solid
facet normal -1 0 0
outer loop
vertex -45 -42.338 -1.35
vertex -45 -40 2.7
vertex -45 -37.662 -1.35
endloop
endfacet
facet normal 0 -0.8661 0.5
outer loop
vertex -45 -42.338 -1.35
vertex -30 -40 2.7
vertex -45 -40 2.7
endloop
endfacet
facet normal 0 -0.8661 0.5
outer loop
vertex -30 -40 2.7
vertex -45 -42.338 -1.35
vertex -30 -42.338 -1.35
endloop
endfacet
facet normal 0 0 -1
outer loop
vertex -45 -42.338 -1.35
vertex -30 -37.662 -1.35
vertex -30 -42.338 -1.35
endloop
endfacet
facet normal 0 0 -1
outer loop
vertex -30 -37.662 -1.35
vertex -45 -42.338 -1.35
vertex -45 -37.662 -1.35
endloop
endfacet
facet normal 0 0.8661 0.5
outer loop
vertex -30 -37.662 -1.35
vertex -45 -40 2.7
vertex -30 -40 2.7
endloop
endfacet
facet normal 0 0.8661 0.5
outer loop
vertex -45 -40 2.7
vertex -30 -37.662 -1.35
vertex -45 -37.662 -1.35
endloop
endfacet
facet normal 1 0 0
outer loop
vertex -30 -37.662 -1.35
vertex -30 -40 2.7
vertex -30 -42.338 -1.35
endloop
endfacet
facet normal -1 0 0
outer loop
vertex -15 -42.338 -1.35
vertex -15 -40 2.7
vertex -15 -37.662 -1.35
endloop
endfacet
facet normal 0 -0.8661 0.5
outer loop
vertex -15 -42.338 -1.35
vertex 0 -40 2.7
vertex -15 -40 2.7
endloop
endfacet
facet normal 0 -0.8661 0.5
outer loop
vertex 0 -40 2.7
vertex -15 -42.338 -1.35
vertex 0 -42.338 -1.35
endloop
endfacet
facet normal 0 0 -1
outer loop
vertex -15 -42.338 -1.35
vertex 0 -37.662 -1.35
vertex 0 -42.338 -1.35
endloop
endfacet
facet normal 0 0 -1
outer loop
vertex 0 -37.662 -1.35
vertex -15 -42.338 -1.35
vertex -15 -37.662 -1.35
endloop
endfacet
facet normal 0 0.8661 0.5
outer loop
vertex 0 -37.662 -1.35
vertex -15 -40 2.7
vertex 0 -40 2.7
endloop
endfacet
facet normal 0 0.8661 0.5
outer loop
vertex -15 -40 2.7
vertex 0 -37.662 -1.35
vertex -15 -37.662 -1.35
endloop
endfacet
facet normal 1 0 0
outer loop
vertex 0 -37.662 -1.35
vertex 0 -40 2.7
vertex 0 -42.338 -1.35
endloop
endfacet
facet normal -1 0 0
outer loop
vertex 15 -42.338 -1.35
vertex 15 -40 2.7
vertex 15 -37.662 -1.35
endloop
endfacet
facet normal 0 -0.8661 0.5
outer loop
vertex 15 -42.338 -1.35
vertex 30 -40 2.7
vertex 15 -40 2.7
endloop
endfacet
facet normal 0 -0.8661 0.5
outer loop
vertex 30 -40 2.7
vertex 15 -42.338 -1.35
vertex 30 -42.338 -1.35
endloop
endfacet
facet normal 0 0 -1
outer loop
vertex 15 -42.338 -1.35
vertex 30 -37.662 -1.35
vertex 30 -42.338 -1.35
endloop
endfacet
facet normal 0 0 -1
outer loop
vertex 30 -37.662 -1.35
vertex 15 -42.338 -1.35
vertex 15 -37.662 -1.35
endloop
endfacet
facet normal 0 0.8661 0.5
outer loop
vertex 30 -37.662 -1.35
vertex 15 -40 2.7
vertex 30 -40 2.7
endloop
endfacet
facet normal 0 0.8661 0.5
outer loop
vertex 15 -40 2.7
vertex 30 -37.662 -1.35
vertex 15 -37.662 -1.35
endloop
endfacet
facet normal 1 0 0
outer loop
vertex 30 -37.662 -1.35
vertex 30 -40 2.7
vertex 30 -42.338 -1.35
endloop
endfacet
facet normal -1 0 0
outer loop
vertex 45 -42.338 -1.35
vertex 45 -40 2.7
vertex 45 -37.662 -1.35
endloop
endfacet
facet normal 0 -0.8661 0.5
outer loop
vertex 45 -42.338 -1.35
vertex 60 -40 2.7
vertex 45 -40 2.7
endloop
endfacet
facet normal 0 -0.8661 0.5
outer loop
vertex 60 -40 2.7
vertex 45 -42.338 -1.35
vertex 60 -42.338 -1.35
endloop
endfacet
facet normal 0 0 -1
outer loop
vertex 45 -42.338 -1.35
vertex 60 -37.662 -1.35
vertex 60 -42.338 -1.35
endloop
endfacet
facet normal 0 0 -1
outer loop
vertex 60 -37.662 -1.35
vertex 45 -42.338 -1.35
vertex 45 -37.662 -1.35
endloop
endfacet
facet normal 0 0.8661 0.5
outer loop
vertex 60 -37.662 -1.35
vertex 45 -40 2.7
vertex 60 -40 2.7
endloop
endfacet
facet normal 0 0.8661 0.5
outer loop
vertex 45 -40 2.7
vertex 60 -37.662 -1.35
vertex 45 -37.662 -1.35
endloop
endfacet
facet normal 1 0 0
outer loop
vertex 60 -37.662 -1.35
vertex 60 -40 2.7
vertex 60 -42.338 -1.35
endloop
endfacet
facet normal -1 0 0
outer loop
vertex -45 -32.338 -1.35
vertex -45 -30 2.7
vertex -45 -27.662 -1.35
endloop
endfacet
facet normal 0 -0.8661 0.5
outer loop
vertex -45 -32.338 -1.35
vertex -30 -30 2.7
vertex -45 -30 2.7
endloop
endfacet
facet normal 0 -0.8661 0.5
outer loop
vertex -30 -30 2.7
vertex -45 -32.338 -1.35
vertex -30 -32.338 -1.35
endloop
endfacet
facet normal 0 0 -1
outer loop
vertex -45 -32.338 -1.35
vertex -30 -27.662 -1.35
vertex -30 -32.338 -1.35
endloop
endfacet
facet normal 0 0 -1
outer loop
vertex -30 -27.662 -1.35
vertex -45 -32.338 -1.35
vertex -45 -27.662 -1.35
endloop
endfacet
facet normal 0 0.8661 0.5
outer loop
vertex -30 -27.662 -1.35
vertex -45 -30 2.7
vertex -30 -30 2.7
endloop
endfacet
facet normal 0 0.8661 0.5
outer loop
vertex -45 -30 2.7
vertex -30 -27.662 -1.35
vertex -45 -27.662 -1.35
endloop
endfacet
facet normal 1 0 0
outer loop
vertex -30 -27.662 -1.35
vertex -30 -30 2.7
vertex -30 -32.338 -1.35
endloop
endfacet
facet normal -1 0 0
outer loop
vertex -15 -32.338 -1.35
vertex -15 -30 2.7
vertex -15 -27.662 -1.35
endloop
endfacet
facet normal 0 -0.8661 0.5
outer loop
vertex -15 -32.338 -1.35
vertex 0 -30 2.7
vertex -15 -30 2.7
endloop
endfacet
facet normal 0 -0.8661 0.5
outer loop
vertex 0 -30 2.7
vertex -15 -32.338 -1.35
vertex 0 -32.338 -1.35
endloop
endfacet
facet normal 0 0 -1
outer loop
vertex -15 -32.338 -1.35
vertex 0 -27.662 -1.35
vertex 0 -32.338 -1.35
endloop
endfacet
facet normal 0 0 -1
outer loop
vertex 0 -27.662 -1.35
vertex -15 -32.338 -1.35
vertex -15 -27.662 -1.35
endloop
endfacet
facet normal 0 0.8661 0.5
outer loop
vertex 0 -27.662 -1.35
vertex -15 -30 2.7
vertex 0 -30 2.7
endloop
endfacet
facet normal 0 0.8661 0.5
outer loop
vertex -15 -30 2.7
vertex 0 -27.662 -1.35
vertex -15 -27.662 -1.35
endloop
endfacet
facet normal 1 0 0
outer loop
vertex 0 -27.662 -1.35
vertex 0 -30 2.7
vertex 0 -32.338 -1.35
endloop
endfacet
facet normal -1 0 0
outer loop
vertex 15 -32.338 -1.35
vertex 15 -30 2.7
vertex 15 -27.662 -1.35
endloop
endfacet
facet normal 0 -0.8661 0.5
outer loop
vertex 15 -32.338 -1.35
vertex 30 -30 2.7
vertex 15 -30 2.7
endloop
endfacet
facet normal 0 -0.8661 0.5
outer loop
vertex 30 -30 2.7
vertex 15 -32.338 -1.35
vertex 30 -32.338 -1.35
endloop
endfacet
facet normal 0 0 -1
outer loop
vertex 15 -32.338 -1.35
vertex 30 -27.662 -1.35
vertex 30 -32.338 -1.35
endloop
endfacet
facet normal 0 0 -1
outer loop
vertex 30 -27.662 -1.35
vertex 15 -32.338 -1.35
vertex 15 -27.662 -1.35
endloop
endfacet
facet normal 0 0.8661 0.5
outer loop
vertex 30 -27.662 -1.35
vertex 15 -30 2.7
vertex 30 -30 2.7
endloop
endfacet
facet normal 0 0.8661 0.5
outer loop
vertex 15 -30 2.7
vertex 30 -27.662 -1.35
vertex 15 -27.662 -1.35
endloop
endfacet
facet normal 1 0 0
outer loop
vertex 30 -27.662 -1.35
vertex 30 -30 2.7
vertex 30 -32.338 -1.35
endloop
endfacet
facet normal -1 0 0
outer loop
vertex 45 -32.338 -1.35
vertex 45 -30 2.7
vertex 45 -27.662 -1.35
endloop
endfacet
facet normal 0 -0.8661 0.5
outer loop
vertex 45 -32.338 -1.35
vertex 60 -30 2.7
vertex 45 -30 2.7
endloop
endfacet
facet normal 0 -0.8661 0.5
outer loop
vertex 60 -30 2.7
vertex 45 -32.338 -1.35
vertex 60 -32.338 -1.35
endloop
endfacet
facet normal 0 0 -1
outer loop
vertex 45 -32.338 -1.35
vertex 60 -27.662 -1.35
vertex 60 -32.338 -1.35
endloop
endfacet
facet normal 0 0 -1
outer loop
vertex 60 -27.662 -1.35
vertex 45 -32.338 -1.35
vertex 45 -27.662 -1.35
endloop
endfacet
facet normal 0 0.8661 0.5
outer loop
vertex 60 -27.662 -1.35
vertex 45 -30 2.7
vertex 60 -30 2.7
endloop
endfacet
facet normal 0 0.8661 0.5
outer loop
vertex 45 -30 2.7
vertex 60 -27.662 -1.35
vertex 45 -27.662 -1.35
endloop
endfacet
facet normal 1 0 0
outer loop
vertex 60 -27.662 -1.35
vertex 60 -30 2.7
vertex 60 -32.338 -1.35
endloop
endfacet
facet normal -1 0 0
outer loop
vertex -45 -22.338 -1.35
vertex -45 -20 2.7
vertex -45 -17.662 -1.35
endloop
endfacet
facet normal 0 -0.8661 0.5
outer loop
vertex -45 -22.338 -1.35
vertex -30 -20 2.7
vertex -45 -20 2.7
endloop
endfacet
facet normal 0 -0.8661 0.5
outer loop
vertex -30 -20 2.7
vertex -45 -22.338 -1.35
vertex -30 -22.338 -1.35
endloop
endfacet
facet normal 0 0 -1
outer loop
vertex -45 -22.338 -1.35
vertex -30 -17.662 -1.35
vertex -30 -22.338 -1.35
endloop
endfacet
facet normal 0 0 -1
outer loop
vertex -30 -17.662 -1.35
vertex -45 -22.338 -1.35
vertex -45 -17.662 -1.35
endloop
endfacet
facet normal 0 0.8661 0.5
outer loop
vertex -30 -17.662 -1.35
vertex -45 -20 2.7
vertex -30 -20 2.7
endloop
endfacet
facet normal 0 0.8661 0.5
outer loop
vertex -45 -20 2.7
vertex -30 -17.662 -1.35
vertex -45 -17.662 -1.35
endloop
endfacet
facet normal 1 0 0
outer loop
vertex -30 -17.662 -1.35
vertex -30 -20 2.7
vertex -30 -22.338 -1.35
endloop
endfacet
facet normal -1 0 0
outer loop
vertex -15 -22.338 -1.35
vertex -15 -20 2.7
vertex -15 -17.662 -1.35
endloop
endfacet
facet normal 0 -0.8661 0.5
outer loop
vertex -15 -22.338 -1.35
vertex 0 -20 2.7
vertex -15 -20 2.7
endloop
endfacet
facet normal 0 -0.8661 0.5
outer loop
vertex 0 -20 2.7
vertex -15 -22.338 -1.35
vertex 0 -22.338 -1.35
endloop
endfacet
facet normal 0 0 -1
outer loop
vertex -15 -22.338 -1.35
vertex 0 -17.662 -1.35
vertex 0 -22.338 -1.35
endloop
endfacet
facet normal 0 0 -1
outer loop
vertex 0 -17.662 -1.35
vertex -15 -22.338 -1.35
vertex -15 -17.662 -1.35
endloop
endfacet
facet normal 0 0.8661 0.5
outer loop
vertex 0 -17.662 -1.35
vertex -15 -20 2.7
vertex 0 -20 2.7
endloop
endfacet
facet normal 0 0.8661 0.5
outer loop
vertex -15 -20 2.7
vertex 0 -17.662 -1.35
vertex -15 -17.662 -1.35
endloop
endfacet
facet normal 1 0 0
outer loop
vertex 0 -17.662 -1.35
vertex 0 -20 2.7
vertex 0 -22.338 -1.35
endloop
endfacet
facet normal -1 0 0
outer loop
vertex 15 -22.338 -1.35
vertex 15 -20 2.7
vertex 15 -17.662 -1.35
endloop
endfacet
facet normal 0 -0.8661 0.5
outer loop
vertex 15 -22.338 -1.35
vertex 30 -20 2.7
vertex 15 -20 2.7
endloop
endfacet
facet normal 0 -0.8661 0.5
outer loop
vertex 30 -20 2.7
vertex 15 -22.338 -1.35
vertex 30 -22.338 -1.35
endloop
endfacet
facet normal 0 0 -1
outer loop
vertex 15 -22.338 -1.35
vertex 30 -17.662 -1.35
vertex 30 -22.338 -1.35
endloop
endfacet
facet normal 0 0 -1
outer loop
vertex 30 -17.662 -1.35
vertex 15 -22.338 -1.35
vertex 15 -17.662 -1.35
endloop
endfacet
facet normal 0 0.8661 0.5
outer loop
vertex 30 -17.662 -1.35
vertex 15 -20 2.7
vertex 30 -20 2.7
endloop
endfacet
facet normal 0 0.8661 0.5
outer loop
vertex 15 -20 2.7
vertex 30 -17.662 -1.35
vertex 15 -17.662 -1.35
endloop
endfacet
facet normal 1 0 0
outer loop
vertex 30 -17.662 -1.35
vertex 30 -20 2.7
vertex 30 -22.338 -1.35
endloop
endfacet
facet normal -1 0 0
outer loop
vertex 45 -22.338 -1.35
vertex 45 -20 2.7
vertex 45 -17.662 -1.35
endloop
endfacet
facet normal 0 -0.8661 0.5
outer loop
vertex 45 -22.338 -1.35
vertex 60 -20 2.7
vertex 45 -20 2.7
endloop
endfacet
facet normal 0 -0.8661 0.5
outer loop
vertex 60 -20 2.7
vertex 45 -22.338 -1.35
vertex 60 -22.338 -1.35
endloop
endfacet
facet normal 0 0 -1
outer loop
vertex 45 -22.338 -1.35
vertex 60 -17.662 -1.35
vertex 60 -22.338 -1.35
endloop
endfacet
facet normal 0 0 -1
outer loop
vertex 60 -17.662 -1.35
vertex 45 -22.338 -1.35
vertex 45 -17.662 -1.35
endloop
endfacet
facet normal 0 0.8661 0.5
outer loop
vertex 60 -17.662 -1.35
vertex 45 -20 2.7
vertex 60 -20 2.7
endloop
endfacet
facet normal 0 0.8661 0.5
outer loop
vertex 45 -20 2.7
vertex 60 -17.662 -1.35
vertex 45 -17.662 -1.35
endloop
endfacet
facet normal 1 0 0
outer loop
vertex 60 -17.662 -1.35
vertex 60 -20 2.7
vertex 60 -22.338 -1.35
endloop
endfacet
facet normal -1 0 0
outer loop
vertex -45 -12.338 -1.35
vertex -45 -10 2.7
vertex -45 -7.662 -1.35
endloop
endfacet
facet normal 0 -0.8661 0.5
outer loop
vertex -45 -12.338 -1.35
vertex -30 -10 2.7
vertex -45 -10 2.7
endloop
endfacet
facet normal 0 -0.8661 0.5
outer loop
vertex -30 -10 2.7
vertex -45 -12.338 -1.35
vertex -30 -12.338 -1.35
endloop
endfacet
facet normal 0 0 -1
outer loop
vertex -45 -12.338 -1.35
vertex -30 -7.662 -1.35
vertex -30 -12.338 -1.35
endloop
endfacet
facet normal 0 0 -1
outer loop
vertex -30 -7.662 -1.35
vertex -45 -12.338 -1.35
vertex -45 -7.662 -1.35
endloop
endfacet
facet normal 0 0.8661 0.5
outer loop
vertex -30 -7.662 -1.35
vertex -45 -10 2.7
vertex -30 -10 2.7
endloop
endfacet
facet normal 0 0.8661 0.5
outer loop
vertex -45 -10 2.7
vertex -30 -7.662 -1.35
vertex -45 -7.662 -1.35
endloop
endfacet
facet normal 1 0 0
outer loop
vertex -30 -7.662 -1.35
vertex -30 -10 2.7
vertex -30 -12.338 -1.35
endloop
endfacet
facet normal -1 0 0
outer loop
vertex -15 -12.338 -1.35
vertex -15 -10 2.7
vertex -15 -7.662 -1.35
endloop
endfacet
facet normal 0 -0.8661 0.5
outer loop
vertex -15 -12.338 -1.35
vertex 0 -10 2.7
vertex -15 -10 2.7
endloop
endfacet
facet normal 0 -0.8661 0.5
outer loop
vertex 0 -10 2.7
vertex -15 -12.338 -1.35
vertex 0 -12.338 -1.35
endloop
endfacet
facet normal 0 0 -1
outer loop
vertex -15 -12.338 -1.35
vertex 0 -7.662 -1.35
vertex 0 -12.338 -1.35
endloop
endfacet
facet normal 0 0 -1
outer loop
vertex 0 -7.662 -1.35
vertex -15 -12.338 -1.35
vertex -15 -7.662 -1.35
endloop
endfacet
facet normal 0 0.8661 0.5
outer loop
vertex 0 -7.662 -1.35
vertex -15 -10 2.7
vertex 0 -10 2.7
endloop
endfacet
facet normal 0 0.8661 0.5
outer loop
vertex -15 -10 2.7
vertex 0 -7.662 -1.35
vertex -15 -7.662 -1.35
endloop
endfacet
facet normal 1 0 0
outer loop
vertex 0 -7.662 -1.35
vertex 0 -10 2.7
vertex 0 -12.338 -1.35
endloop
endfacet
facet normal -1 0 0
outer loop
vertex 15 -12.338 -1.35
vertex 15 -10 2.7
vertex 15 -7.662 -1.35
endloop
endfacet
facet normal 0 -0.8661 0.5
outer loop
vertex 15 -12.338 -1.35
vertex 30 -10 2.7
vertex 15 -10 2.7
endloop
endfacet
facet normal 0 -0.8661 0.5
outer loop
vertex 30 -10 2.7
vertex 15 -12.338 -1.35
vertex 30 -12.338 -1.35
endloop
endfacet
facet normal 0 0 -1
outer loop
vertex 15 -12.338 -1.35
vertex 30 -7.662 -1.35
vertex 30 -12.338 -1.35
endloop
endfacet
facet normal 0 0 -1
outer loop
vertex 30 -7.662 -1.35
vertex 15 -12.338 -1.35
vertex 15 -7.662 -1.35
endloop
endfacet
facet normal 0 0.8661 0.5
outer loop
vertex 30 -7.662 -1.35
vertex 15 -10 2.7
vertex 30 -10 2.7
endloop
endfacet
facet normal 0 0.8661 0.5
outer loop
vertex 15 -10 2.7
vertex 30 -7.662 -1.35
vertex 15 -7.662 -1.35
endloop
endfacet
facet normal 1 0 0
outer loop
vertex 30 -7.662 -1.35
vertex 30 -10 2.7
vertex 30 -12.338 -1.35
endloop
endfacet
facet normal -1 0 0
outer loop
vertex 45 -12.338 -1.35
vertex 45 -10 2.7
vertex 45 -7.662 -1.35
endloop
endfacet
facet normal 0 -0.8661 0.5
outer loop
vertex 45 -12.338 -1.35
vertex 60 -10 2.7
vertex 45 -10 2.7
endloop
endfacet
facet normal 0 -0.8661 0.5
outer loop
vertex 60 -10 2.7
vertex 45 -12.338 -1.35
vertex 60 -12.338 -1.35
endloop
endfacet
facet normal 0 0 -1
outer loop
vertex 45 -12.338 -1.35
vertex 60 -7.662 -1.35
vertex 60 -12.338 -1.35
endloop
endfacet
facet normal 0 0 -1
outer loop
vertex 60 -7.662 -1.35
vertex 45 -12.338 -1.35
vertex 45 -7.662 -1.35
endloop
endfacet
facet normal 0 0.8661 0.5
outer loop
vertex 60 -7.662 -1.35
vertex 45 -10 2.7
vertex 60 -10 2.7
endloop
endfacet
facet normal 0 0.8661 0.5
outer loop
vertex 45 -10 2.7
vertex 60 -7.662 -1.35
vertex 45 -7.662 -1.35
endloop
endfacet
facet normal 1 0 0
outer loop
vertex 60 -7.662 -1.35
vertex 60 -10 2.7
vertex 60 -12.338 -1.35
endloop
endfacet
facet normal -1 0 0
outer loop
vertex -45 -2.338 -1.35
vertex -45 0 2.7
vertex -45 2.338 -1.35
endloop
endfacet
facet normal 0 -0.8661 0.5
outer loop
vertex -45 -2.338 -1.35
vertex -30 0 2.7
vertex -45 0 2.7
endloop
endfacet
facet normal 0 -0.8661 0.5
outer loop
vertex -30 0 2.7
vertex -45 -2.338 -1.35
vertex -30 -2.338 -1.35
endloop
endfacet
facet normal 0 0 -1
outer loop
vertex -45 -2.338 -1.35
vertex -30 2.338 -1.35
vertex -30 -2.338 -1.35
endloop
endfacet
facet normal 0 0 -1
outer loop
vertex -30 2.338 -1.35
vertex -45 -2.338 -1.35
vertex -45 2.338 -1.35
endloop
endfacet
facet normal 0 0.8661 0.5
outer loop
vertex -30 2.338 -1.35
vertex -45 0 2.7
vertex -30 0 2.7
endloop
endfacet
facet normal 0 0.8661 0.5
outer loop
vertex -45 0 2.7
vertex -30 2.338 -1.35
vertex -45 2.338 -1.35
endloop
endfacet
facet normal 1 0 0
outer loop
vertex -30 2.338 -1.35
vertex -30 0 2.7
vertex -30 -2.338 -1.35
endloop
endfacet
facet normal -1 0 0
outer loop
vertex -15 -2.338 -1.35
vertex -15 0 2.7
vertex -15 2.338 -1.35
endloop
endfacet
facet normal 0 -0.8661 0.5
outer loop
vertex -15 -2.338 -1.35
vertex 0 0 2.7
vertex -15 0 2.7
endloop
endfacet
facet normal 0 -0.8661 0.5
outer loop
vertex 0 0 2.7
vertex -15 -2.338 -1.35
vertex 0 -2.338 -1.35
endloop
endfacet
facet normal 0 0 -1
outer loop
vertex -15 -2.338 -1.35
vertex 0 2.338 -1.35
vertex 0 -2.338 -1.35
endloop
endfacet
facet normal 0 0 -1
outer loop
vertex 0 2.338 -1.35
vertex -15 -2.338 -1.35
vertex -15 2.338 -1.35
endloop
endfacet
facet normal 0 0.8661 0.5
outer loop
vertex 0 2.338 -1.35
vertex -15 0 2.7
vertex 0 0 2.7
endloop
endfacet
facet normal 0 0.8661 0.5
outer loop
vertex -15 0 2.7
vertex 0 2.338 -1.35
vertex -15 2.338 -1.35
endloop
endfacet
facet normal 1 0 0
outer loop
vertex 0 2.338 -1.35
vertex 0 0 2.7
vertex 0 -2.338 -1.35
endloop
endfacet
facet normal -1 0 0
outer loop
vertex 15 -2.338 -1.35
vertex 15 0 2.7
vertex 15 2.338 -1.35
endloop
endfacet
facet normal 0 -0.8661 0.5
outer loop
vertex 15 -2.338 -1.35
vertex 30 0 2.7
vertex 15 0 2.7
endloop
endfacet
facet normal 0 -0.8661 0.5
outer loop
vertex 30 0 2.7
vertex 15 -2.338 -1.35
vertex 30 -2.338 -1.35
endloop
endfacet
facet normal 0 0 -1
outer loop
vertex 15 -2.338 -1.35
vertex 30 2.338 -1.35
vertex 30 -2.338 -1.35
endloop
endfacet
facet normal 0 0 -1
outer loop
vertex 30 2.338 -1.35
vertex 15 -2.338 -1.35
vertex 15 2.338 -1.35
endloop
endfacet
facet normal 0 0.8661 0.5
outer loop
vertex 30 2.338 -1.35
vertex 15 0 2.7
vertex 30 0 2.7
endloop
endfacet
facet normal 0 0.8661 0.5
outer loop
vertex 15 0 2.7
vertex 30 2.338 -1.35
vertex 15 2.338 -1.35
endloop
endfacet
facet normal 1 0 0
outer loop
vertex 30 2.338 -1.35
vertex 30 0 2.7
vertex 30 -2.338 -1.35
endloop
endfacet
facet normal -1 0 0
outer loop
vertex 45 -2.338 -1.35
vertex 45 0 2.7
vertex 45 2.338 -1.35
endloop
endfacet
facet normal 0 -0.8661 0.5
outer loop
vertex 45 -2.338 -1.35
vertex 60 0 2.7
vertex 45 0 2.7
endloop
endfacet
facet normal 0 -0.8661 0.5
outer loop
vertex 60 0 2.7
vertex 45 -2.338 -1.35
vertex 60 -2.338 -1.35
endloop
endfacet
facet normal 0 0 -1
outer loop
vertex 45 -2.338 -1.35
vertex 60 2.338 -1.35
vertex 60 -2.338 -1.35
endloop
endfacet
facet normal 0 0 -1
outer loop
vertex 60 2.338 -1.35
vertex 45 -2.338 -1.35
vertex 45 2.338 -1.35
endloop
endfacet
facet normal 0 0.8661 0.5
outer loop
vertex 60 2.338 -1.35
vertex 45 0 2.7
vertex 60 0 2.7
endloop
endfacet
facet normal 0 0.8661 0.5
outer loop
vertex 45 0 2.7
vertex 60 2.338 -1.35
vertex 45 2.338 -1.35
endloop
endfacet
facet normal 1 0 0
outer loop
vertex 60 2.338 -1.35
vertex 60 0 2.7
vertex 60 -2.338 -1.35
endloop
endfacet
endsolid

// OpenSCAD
// file: triangle_union.scad
module triangulo_base(height, radio, wall) {
  //const
  triangle_height = height;
  triangle_radio = radio;
  triangle_wall = wall;

  /*triangle_height = 25;
  triangle_radio = 5.4/2;
  triangle_wall = 5.4/2;*/
	//Rotate triangle To lean on the bed of the printer
  rotate([0, 90, 0]) {
    rotate(-30){
      triangle_tube(triangle_height, triangle_radio, triangle_wall);
    }
  }
}

//triangle_tube(20, 5, 5);
module triangle_tube(height,radius,wall)
{
   tubify(radius,wall) triangle_prism(height,radius);
}

//Tubifies any regular prism
module tubify(radius,wall)
{
  difference()
  {
    children(0);
    translate([0, 0, -0.1]) scale([(radius-wall)/radius, (radius-wall)/radius, 2]) children(0);
  }
}

module triangle_prism(height,radius)
{
  linear_extrude(height=height) triangle(radius);
}

module triangle(radius)
{
  o=radius/2;		//equivalent to radius*sin(30)
  a=radius*sqrt(3)/2;	//equivalent to radius*cos(30)
  polygon(points=[[-a,-o],[0,radius],[a,-o]],paths=[[0,1,2]]);
}
// main file
//include <unions.scad>
include <triangle_union.scad>

/**
 * Matrix generator, TODO paametrizer step to diferent pieze
 **/

/*triangle_positions = [0, -50+i*20, 0];
triangle_step = 32;

union_positons = [0, -50+i*10, 0];
union_step = 12;*/

/**
 * grid system generator
 **/

module step(len, mod) {
	for (i = [0:$children-1])
	translate([ len*(i - ($children-1)/2), 0, 0 ]) children((i+mod) % $children);
}

for (i = [1:5]) {
	translate([0, -50+i*10, 0]) step(30, i) {
			triangulo_base(15, 5.4/2, 5.4/2);
			triangulo_base(15, 5.4/2, 5.4/2);
			triangulo_base(15, 5.4/2, 5.4/2);
			triangulo_base(15, 5.4/2, 5.4/2);

	}
}
